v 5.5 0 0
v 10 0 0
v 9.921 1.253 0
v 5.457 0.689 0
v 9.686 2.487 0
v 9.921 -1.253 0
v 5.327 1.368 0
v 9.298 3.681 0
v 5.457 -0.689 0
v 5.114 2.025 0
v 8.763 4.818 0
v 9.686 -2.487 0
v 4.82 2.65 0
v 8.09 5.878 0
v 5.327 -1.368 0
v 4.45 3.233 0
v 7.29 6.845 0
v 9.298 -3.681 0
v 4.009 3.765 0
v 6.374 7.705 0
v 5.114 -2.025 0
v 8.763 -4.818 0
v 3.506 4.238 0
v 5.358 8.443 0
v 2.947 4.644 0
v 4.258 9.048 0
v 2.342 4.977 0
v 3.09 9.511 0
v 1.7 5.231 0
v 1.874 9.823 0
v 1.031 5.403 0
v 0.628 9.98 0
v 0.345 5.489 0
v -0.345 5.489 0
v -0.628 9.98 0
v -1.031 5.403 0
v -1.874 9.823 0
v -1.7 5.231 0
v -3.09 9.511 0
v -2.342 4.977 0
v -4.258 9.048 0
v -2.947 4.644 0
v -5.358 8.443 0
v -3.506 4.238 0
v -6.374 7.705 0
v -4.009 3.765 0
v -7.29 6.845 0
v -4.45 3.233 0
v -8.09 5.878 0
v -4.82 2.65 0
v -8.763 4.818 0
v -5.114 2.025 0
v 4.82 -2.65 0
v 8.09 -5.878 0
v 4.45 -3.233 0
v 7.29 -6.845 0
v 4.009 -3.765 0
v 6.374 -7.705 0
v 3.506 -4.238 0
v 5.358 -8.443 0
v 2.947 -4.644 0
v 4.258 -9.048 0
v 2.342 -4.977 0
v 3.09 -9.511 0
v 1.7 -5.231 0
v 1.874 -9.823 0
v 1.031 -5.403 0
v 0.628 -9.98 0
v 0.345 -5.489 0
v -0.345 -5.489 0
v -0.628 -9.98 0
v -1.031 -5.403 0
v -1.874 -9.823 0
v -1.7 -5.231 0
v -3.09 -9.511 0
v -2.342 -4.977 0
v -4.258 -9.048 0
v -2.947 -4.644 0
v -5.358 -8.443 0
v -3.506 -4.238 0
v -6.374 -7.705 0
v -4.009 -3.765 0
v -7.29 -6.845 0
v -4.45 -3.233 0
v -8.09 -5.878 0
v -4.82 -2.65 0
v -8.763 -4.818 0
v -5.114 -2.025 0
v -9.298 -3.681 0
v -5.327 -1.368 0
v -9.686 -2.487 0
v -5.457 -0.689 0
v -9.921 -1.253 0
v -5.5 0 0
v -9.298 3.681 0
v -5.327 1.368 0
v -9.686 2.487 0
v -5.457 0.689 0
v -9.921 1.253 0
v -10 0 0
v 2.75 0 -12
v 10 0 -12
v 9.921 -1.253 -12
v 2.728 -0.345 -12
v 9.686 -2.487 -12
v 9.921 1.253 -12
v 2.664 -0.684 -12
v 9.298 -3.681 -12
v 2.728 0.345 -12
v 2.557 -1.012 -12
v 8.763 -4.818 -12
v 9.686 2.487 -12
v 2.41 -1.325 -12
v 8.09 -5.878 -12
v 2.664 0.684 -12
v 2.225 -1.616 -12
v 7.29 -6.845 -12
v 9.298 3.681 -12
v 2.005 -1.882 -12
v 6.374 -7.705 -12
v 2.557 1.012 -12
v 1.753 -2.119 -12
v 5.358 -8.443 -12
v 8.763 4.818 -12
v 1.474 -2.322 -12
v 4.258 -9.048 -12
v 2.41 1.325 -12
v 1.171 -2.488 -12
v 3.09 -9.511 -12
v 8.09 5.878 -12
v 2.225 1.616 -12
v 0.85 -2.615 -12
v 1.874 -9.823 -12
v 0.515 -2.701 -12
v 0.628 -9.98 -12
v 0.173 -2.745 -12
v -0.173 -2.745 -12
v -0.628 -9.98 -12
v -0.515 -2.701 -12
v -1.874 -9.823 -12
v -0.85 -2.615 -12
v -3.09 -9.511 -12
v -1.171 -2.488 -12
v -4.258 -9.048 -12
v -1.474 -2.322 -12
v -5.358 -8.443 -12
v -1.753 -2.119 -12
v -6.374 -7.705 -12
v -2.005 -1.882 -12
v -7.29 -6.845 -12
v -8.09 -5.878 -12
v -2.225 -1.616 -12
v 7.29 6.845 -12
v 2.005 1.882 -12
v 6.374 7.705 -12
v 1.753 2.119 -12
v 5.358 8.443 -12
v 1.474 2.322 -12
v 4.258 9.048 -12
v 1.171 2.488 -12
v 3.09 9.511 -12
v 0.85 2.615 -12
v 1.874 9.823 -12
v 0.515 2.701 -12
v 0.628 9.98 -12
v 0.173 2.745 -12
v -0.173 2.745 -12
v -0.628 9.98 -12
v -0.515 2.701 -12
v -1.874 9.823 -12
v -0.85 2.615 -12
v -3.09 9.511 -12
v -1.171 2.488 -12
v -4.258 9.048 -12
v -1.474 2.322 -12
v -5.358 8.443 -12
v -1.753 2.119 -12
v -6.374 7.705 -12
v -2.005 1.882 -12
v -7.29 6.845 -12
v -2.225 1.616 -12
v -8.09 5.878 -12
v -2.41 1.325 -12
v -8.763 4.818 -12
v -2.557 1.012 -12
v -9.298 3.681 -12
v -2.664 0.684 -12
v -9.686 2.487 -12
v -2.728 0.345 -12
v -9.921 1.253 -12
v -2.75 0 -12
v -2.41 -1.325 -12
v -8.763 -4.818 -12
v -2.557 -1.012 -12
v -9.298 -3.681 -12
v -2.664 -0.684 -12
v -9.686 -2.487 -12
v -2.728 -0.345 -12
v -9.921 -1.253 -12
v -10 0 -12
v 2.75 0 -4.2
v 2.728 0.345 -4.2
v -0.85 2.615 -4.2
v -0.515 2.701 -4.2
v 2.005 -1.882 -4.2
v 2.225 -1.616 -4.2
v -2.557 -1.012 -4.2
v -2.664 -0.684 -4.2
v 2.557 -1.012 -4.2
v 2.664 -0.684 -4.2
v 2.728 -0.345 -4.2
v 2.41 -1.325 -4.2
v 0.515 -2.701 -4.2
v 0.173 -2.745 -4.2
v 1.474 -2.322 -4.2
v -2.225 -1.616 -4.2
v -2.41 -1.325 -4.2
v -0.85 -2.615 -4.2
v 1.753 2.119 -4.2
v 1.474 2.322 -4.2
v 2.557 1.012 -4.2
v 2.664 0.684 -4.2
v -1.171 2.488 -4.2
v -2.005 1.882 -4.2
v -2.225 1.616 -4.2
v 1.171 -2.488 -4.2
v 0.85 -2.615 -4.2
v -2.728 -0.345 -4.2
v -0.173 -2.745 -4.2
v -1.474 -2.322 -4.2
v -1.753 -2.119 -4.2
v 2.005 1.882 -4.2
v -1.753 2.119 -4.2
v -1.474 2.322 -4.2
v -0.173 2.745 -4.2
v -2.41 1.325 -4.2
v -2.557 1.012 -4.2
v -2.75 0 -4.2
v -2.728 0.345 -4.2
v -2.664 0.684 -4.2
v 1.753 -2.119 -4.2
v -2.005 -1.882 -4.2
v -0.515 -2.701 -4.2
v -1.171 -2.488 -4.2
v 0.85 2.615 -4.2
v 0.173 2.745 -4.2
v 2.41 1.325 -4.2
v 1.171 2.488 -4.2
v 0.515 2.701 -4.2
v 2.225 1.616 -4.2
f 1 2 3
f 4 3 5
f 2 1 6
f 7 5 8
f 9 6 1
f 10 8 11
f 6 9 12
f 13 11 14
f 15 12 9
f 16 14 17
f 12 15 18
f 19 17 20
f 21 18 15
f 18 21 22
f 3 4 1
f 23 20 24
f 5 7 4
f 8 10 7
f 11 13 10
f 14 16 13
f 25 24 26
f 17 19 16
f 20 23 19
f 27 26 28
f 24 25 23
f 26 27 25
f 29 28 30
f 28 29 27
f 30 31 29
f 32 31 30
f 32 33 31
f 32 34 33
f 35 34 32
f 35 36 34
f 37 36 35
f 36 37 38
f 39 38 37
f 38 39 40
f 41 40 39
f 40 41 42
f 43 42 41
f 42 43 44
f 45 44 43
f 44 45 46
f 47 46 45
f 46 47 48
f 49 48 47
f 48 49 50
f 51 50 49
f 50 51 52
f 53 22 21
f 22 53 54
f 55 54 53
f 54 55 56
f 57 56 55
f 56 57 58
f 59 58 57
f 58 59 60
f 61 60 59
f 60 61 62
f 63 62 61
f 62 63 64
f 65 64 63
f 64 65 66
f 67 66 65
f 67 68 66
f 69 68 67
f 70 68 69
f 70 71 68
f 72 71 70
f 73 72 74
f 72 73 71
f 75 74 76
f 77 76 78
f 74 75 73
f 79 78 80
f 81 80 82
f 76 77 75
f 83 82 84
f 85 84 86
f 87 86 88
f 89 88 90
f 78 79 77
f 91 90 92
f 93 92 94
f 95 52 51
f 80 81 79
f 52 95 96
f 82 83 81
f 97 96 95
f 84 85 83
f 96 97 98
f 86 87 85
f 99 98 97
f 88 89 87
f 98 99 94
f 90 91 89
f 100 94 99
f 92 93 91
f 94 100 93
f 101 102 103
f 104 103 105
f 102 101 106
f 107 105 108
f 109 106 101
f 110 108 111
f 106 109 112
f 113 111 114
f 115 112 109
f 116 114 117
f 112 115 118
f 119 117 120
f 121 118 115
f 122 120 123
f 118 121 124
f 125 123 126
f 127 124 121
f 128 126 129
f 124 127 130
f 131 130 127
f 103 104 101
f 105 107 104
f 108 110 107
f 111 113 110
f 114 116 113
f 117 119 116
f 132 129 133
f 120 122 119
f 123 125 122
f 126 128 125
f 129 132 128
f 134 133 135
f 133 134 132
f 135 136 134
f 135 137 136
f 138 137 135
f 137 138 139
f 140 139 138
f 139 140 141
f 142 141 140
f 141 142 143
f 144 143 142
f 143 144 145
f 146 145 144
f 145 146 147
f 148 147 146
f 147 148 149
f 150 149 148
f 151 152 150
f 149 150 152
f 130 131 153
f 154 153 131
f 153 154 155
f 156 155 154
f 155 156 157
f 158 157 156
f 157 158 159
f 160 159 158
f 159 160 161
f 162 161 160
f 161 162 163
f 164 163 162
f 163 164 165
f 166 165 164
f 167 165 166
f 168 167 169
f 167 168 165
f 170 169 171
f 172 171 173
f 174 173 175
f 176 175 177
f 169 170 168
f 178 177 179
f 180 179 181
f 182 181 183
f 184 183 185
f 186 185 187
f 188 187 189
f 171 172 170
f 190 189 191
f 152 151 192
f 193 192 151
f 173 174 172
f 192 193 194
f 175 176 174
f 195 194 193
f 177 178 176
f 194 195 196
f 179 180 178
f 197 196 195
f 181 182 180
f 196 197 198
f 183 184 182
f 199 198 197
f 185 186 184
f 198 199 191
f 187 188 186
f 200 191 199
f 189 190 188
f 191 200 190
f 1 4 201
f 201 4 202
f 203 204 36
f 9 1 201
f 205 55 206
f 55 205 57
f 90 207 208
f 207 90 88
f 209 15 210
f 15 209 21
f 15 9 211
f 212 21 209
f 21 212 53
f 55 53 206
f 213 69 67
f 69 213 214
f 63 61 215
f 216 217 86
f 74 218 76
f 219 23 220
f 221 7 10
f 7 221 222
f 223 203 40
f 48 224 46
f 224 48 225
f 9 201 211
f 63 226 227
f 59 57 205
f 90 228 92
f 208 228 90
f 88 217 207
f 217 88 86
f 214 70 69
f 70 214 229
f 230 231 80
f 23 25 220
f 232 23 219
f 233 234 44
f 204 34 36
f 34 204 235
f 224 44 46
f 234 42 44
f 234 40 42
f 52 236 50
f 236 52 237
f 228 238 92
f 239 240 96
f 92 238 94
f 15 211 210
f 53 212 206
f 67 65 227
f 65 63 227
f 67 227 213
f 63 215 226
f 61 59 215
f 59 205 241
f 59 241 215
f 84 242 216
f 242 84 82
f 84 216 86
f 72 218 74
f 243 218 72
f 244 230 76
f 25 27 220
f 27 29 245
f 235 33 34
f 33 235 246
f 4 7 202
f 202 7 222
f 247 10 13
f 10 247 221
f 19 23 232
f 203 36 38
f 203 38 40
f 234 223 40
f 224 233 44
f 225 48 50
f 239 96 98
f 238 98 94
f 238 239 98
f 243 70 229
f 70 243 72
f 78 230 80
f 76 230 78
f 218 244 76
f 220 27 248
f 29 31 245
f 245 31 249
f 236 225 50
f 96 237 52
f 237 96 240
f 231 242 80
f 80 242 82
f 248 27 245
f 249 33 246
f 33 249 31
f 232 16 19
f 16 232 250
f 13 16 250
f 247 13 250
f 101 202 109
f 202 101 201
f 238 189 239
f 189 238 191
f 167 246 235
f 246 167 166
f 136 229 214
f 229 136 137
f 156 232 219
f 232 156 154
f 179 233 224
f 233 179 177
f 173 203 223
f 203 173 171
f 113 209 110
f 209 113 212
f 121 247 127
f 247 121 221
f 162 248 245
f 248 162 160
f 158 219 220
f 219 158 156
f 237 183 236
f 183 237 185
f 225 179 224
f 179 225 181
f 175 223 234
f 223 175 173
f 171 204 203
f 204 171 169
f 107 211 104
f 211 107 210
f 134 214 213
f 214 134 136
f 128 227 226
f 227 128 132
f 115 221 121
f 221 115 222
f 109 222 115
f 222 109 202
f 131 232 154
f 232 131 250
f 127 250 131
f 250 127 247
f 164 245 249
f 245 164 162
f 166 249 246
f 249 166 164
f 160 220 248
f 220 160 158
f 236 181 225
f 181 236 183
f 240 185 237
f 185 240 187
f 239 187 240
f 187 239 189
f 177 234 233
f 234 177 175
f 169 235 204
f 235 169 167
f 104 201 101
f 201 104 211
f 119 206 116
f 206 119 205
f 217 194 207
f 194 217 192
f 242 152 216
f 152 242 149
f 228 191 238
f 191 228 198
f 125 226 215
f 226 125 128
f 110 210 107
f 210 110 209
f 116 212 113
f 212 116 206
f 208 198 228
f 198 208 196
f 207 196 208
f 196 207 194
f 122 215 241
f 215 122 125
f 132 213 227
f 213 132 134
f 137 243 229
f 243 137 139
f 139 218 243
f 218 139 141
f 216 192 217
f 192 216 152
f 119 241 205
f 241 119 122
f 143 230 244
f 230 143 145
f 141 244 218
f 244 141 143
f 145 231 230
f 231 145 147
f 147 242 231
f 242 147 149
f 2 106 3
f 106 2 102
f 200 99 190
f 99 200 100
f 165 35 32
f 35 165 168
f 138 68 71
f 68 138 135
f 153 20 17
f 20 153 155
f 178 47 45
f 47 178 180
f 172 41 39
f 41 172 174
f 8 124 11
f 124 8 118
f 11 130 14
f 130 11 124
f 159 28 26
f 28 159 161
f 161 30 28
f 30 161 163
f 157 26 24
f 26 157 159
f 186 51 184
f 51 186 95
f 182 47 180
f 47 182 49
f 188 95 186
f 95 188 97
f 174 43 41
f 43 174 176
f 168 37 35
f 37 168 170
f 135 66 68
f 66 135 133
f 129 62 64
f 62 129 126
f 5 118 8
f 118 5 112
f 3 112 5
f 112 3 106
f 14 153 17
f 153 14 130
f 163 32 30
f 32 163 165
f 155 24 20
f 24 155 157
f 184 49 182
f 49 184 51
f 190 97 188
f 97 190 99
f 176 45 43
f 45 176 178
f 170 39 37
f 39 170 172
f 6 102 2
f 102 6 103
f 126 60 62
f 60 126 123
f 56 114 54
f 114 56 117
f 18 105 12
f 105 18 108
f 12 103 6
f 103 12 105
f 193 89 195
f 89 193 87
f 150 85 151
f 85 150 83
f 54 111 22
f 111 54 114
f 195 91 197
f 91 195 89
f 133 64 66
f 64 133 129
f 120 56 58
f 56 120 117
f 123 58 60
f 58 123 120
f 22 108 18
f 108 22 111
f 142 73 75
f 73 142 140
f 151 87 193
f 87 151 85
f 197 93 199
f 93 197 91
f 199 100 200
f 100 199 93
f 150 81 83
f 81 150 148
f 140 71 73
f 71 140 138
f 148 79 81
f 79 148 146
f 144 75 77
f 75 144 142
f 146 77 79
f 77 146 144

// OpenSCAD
$fn = 50;


difference() {
	union() {
		translate(v = [0, 0, -12.0000000000]) {
			cylinder(h = 12, r = 10.0000000000);
		}
		cylinder(h = 0, r = 13.0000000000);
	}
	union() {
		translate(v = [0, 0, 0]) {
			rotate(a = [0, 0, 0]) {
				difference() {
					union() {
						#translate(v = [0, 0, -12.0000000000]) {
							cylinder(h = 12, r = 2.2500000000);
						}
						#translate(v = [0, 0, -4.2000000000]) {
							cylinder(h = 4.2000000000, r = 10.0000000000, r1 = 2.7500000000, r2 = 5.5000000000);
						}
						#translate(v = [0, 0, -12.0000000000]) {
							cylinder(h = 12, r = 2.7500000000);
						}
						#translate(v = [0, 0, -12.0000000000]) {
							cylinder(h = 12, r = 2.2500000000);
						}
					}
					union();
				}
			}
		}
	}
}
